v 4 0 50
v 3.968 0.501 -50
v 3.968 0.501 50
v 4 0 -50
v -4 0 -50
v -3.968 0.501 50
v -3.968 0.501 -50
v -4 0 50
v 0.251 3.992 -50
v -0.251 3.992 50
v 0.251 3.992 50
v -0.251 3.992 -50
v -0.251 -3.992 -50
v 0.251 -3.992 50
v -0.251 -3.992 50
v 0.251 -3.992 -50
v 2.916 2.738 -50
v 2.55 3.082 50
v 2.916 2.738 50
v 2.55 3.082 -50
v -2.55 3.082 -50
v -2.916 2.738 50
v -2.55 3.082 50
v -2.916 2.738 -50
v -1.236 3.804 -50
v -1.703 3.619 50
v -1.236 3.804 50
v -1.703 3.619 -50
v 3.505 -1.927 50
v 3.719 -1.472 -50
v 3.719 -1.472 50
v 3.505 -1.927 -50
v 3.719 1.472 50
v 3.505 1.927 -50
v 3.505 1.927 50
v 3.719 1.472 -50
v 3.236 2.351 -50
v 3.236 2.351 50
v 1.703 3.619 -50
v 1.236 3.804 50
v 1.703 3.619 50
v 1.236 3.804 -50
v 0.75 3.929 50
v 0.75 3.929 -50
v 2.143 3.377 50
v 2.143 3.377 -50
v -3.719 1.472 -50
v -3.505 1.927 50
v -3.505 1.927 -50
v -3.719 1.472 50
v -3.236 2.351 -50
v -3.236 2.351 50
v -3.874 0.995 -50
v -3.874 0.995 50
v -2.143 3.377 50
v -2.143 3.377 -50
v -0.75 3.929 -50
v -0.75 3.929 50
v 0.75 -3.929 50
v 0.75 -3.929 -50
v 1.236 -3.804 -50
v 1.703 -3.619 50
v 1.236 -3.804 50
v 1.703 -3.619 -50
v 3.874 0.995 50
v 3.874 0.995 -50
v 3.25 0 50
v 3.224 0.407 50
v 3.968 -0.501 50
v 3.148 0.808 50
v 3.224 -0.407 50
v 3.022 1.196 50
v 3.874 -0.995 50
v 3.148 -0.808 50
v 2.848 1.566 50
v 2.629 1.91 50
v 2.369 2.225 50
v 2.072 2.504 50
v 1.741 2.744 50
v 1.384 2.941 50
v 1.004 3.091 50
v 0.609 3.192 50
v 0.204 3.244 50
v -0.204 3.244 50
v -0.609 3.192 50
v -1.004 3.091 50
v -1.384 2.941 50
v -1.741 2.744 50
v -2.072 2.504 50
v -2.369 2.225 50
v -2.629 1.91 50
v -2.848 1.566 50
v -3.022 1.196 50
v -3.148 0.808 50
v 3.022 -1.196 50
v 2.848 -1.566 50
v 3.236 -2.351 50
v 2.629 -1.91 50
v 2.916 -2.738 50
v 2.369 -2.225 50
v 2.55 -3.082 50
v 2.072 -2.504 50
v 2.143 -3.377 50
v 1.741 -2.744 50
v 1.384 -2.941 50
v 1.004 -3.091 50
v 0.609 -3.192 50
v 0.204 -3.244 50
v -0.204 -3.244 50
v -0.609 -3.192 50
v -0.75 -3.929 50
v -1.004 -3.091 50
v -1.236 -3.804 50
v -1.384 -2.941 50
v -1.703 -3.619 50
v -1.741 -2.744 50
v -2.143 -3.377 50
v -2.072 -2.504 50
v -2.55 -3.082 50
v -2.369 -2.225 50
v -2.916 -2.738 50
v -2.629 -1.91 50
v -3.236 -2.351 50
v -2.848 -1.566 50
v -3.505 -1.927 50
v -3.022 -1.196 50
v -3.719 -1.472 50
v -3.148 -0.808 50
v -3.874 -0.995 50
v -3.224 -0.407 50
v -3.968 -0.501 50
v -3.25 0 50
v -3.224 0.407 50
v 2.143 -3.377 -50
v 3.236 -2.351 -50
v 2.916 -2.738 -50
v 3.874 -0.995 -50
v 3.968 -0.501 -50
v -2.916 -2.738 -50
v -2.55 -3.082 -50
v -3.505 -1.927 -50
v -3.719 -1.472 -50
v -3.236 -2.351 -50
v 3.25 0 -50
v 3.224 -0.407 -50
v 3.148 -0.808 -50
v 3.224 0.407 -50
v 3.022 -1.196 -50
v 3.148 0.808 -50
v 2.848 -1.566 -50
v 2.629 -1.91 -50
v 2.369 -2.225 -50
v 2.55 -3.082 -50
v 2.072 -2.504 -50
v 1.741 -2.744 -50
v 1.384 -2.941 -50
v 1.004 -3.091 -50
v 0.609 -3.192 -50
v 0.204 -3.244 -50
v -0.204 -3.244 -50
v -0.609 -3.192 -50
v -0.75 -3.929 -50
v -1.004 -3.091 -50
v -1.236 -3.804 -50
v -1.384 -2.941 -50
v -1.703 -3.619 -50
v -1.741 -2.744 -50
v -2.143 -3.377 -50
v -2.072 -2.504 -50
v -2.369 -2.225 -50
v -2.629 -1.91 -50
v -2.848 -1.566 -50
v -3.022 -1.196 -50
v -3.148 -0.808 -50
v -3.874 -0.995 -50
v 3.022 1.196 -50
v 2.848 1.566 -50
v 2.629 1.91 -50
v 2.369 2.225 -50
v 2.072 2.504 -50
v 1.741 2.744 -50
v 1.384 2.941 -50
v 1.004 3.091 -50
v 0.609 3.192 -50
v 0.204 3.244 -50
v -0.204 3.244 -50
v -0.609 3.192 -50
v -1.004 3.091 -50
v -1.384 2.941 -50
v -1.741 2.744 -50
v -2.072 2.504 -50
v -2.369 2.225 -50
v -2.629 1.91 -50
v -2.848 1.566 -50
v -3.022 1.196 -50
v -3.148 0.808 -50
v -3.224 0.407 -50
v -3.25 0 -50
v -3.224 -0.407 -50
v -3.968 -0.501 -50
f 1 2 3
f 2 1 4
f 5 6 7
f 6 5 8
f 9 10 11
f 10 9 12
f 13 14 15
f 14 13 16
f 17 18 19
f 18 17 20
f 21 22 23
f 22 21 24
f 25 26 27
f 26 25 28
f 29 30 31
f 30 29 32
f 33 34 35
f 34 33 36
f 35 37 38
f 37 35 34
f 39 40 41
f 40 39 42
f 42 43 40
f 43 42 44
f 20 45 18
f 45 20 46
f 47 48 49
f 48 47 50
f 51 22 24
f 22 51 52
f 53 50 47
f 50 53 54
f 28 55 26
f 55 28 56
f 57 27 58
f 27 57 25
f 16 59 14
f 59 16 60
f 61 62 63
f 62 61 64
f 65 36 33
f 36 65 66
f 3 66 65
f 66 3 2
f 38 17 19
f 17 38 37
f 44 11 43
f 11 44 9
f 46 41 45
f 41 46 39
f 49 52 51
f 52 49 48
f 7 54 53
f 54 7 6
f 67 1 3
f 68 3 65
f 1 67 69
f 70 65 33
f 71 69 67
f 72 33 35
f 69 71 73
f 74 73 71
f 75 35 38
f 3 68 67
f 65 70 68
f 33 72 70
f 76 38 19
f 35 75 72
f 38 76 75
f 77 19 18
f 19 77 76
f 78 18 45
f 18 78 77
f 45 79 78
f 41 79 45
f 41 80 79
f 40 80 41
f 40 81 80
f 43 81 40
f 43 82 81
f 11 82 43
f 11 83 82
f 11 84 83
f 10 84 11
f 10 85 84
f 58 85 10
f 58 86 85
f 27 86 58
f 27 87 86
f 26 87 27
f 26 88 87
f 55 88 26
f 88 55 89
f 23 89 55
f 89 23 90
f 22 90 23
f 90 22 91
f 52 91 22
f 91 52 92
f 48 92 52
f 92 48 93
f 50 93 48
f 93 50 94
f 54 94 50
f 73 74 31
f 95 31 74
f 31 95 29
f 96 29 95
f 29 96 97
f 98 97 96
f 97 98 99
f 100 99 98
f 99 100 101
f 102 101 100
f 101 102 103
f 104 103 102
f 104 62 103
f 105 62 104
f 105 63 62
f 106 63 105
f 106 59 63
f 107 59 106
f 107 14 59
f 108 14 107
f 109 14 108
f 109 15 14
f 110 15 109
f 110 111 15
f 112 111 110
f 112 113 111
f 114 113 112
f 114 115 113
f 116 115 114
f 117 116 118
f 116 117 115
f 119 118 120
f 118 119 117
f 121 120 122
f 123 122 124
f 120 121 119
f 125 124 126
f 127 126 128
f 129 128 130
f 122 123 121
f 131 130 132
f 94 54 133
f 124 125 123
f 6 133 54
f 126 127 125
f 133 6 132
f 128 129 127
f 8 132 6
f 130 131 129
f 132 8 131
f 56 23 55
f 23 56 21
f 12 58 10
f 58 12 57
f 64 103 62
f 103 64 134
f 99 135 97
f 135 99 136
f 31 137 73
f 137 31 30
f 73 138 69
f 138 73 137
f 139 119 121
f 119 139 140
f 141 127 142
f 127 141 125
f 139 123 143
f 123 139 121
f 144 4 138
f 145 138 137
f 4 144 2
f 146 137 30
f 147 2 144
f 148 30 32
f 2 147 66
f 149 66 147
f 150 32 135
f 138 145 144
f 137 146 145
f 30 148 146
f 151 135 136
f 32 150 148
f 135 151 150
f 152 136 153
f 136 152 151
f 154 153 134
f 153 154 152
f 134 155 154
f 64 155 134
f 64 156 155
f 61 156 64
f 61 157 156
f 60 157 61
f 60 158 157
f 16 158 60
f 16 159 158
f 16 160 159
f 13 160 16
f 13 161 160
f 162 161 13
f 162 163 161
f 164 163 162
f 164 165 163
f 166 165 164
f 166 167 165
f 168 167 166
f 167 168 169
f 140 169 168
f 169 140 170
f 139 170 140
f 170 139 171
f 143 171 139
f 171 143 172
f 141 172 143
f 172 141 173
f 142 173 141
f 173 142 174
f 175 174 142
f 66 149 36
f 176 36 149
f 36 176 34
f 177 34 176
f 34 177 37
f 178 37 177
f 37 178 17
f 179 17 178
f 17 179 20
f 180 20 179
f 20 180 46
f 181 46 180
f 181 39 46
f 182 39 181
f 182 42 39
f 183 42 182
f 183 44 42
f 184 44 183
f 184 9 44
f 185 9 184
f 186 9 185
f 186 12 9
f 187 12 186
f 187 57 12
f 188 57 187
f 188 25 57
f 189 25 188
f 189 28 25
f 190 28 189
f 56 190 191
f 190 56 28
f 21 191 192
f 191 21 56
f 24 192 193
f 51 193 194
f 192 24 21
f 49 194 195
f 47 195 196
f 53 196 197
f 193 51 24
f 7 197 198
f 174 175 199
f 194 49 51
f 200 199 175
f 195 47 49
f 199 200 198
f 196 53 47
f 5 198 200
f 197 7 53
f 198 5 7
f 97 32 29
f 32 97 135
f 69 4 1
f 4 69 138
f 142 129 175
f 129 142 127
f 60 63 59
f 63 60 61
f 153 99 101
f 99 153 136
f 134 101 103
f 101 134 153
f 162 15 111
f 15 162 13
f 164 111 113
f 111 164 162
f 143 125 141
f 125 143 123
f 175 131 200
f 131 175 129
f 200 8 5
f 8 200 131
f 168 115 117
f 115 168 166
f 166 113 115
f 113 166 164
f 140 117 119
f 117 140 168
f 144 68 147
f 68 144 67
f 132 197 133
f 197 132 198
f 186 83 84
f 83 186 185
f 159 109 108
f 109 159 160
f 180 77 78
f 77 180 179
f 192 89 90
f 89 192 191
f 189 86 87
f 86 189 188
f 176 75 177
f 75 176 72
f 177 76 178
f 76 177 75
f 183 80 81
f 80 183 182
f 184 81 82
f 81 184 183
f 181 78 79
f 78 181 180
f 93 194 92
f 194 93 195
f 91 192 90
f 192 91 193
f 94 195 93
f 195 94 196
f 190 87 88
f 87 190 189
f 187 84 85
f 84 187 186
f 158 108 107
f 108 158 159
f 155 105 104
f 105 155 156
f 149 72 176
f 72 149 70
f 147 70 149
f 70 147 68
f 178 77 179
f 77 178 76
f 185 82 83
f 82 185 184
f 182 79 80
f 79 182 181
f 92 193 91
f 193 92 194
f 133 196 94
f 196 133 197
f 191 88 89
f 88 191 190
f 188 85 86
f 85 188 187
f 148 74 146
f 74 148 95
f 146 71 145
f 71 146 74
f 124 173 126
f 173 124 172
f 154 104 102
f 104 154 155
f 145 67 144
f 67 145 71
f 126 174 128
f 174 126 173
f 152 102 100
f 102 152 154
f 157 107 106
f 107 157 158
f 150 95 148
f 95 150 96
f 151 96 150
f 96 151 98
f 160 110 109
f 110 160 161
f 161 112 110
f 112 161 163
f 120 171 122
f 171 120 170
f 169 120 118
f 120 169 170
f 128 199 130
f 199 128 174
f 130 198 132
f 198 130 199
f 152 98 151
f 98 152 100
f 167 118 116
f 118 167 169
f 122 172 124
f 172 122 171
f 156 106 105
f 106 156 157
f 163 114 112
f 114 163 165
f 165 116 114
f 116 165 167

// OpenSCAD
$fn = 50;


difference() {
	union() {
		translate(v = [0, 0, -50.0000000000]) {
			cylinder(h = 100, r = 4.0000000000);
		}
	}
	union() {
		translate(v = [0, 0, -100.0000000000]) {
			cylinder(h = 200, r = 3.2500000000);
		}
	}
}
